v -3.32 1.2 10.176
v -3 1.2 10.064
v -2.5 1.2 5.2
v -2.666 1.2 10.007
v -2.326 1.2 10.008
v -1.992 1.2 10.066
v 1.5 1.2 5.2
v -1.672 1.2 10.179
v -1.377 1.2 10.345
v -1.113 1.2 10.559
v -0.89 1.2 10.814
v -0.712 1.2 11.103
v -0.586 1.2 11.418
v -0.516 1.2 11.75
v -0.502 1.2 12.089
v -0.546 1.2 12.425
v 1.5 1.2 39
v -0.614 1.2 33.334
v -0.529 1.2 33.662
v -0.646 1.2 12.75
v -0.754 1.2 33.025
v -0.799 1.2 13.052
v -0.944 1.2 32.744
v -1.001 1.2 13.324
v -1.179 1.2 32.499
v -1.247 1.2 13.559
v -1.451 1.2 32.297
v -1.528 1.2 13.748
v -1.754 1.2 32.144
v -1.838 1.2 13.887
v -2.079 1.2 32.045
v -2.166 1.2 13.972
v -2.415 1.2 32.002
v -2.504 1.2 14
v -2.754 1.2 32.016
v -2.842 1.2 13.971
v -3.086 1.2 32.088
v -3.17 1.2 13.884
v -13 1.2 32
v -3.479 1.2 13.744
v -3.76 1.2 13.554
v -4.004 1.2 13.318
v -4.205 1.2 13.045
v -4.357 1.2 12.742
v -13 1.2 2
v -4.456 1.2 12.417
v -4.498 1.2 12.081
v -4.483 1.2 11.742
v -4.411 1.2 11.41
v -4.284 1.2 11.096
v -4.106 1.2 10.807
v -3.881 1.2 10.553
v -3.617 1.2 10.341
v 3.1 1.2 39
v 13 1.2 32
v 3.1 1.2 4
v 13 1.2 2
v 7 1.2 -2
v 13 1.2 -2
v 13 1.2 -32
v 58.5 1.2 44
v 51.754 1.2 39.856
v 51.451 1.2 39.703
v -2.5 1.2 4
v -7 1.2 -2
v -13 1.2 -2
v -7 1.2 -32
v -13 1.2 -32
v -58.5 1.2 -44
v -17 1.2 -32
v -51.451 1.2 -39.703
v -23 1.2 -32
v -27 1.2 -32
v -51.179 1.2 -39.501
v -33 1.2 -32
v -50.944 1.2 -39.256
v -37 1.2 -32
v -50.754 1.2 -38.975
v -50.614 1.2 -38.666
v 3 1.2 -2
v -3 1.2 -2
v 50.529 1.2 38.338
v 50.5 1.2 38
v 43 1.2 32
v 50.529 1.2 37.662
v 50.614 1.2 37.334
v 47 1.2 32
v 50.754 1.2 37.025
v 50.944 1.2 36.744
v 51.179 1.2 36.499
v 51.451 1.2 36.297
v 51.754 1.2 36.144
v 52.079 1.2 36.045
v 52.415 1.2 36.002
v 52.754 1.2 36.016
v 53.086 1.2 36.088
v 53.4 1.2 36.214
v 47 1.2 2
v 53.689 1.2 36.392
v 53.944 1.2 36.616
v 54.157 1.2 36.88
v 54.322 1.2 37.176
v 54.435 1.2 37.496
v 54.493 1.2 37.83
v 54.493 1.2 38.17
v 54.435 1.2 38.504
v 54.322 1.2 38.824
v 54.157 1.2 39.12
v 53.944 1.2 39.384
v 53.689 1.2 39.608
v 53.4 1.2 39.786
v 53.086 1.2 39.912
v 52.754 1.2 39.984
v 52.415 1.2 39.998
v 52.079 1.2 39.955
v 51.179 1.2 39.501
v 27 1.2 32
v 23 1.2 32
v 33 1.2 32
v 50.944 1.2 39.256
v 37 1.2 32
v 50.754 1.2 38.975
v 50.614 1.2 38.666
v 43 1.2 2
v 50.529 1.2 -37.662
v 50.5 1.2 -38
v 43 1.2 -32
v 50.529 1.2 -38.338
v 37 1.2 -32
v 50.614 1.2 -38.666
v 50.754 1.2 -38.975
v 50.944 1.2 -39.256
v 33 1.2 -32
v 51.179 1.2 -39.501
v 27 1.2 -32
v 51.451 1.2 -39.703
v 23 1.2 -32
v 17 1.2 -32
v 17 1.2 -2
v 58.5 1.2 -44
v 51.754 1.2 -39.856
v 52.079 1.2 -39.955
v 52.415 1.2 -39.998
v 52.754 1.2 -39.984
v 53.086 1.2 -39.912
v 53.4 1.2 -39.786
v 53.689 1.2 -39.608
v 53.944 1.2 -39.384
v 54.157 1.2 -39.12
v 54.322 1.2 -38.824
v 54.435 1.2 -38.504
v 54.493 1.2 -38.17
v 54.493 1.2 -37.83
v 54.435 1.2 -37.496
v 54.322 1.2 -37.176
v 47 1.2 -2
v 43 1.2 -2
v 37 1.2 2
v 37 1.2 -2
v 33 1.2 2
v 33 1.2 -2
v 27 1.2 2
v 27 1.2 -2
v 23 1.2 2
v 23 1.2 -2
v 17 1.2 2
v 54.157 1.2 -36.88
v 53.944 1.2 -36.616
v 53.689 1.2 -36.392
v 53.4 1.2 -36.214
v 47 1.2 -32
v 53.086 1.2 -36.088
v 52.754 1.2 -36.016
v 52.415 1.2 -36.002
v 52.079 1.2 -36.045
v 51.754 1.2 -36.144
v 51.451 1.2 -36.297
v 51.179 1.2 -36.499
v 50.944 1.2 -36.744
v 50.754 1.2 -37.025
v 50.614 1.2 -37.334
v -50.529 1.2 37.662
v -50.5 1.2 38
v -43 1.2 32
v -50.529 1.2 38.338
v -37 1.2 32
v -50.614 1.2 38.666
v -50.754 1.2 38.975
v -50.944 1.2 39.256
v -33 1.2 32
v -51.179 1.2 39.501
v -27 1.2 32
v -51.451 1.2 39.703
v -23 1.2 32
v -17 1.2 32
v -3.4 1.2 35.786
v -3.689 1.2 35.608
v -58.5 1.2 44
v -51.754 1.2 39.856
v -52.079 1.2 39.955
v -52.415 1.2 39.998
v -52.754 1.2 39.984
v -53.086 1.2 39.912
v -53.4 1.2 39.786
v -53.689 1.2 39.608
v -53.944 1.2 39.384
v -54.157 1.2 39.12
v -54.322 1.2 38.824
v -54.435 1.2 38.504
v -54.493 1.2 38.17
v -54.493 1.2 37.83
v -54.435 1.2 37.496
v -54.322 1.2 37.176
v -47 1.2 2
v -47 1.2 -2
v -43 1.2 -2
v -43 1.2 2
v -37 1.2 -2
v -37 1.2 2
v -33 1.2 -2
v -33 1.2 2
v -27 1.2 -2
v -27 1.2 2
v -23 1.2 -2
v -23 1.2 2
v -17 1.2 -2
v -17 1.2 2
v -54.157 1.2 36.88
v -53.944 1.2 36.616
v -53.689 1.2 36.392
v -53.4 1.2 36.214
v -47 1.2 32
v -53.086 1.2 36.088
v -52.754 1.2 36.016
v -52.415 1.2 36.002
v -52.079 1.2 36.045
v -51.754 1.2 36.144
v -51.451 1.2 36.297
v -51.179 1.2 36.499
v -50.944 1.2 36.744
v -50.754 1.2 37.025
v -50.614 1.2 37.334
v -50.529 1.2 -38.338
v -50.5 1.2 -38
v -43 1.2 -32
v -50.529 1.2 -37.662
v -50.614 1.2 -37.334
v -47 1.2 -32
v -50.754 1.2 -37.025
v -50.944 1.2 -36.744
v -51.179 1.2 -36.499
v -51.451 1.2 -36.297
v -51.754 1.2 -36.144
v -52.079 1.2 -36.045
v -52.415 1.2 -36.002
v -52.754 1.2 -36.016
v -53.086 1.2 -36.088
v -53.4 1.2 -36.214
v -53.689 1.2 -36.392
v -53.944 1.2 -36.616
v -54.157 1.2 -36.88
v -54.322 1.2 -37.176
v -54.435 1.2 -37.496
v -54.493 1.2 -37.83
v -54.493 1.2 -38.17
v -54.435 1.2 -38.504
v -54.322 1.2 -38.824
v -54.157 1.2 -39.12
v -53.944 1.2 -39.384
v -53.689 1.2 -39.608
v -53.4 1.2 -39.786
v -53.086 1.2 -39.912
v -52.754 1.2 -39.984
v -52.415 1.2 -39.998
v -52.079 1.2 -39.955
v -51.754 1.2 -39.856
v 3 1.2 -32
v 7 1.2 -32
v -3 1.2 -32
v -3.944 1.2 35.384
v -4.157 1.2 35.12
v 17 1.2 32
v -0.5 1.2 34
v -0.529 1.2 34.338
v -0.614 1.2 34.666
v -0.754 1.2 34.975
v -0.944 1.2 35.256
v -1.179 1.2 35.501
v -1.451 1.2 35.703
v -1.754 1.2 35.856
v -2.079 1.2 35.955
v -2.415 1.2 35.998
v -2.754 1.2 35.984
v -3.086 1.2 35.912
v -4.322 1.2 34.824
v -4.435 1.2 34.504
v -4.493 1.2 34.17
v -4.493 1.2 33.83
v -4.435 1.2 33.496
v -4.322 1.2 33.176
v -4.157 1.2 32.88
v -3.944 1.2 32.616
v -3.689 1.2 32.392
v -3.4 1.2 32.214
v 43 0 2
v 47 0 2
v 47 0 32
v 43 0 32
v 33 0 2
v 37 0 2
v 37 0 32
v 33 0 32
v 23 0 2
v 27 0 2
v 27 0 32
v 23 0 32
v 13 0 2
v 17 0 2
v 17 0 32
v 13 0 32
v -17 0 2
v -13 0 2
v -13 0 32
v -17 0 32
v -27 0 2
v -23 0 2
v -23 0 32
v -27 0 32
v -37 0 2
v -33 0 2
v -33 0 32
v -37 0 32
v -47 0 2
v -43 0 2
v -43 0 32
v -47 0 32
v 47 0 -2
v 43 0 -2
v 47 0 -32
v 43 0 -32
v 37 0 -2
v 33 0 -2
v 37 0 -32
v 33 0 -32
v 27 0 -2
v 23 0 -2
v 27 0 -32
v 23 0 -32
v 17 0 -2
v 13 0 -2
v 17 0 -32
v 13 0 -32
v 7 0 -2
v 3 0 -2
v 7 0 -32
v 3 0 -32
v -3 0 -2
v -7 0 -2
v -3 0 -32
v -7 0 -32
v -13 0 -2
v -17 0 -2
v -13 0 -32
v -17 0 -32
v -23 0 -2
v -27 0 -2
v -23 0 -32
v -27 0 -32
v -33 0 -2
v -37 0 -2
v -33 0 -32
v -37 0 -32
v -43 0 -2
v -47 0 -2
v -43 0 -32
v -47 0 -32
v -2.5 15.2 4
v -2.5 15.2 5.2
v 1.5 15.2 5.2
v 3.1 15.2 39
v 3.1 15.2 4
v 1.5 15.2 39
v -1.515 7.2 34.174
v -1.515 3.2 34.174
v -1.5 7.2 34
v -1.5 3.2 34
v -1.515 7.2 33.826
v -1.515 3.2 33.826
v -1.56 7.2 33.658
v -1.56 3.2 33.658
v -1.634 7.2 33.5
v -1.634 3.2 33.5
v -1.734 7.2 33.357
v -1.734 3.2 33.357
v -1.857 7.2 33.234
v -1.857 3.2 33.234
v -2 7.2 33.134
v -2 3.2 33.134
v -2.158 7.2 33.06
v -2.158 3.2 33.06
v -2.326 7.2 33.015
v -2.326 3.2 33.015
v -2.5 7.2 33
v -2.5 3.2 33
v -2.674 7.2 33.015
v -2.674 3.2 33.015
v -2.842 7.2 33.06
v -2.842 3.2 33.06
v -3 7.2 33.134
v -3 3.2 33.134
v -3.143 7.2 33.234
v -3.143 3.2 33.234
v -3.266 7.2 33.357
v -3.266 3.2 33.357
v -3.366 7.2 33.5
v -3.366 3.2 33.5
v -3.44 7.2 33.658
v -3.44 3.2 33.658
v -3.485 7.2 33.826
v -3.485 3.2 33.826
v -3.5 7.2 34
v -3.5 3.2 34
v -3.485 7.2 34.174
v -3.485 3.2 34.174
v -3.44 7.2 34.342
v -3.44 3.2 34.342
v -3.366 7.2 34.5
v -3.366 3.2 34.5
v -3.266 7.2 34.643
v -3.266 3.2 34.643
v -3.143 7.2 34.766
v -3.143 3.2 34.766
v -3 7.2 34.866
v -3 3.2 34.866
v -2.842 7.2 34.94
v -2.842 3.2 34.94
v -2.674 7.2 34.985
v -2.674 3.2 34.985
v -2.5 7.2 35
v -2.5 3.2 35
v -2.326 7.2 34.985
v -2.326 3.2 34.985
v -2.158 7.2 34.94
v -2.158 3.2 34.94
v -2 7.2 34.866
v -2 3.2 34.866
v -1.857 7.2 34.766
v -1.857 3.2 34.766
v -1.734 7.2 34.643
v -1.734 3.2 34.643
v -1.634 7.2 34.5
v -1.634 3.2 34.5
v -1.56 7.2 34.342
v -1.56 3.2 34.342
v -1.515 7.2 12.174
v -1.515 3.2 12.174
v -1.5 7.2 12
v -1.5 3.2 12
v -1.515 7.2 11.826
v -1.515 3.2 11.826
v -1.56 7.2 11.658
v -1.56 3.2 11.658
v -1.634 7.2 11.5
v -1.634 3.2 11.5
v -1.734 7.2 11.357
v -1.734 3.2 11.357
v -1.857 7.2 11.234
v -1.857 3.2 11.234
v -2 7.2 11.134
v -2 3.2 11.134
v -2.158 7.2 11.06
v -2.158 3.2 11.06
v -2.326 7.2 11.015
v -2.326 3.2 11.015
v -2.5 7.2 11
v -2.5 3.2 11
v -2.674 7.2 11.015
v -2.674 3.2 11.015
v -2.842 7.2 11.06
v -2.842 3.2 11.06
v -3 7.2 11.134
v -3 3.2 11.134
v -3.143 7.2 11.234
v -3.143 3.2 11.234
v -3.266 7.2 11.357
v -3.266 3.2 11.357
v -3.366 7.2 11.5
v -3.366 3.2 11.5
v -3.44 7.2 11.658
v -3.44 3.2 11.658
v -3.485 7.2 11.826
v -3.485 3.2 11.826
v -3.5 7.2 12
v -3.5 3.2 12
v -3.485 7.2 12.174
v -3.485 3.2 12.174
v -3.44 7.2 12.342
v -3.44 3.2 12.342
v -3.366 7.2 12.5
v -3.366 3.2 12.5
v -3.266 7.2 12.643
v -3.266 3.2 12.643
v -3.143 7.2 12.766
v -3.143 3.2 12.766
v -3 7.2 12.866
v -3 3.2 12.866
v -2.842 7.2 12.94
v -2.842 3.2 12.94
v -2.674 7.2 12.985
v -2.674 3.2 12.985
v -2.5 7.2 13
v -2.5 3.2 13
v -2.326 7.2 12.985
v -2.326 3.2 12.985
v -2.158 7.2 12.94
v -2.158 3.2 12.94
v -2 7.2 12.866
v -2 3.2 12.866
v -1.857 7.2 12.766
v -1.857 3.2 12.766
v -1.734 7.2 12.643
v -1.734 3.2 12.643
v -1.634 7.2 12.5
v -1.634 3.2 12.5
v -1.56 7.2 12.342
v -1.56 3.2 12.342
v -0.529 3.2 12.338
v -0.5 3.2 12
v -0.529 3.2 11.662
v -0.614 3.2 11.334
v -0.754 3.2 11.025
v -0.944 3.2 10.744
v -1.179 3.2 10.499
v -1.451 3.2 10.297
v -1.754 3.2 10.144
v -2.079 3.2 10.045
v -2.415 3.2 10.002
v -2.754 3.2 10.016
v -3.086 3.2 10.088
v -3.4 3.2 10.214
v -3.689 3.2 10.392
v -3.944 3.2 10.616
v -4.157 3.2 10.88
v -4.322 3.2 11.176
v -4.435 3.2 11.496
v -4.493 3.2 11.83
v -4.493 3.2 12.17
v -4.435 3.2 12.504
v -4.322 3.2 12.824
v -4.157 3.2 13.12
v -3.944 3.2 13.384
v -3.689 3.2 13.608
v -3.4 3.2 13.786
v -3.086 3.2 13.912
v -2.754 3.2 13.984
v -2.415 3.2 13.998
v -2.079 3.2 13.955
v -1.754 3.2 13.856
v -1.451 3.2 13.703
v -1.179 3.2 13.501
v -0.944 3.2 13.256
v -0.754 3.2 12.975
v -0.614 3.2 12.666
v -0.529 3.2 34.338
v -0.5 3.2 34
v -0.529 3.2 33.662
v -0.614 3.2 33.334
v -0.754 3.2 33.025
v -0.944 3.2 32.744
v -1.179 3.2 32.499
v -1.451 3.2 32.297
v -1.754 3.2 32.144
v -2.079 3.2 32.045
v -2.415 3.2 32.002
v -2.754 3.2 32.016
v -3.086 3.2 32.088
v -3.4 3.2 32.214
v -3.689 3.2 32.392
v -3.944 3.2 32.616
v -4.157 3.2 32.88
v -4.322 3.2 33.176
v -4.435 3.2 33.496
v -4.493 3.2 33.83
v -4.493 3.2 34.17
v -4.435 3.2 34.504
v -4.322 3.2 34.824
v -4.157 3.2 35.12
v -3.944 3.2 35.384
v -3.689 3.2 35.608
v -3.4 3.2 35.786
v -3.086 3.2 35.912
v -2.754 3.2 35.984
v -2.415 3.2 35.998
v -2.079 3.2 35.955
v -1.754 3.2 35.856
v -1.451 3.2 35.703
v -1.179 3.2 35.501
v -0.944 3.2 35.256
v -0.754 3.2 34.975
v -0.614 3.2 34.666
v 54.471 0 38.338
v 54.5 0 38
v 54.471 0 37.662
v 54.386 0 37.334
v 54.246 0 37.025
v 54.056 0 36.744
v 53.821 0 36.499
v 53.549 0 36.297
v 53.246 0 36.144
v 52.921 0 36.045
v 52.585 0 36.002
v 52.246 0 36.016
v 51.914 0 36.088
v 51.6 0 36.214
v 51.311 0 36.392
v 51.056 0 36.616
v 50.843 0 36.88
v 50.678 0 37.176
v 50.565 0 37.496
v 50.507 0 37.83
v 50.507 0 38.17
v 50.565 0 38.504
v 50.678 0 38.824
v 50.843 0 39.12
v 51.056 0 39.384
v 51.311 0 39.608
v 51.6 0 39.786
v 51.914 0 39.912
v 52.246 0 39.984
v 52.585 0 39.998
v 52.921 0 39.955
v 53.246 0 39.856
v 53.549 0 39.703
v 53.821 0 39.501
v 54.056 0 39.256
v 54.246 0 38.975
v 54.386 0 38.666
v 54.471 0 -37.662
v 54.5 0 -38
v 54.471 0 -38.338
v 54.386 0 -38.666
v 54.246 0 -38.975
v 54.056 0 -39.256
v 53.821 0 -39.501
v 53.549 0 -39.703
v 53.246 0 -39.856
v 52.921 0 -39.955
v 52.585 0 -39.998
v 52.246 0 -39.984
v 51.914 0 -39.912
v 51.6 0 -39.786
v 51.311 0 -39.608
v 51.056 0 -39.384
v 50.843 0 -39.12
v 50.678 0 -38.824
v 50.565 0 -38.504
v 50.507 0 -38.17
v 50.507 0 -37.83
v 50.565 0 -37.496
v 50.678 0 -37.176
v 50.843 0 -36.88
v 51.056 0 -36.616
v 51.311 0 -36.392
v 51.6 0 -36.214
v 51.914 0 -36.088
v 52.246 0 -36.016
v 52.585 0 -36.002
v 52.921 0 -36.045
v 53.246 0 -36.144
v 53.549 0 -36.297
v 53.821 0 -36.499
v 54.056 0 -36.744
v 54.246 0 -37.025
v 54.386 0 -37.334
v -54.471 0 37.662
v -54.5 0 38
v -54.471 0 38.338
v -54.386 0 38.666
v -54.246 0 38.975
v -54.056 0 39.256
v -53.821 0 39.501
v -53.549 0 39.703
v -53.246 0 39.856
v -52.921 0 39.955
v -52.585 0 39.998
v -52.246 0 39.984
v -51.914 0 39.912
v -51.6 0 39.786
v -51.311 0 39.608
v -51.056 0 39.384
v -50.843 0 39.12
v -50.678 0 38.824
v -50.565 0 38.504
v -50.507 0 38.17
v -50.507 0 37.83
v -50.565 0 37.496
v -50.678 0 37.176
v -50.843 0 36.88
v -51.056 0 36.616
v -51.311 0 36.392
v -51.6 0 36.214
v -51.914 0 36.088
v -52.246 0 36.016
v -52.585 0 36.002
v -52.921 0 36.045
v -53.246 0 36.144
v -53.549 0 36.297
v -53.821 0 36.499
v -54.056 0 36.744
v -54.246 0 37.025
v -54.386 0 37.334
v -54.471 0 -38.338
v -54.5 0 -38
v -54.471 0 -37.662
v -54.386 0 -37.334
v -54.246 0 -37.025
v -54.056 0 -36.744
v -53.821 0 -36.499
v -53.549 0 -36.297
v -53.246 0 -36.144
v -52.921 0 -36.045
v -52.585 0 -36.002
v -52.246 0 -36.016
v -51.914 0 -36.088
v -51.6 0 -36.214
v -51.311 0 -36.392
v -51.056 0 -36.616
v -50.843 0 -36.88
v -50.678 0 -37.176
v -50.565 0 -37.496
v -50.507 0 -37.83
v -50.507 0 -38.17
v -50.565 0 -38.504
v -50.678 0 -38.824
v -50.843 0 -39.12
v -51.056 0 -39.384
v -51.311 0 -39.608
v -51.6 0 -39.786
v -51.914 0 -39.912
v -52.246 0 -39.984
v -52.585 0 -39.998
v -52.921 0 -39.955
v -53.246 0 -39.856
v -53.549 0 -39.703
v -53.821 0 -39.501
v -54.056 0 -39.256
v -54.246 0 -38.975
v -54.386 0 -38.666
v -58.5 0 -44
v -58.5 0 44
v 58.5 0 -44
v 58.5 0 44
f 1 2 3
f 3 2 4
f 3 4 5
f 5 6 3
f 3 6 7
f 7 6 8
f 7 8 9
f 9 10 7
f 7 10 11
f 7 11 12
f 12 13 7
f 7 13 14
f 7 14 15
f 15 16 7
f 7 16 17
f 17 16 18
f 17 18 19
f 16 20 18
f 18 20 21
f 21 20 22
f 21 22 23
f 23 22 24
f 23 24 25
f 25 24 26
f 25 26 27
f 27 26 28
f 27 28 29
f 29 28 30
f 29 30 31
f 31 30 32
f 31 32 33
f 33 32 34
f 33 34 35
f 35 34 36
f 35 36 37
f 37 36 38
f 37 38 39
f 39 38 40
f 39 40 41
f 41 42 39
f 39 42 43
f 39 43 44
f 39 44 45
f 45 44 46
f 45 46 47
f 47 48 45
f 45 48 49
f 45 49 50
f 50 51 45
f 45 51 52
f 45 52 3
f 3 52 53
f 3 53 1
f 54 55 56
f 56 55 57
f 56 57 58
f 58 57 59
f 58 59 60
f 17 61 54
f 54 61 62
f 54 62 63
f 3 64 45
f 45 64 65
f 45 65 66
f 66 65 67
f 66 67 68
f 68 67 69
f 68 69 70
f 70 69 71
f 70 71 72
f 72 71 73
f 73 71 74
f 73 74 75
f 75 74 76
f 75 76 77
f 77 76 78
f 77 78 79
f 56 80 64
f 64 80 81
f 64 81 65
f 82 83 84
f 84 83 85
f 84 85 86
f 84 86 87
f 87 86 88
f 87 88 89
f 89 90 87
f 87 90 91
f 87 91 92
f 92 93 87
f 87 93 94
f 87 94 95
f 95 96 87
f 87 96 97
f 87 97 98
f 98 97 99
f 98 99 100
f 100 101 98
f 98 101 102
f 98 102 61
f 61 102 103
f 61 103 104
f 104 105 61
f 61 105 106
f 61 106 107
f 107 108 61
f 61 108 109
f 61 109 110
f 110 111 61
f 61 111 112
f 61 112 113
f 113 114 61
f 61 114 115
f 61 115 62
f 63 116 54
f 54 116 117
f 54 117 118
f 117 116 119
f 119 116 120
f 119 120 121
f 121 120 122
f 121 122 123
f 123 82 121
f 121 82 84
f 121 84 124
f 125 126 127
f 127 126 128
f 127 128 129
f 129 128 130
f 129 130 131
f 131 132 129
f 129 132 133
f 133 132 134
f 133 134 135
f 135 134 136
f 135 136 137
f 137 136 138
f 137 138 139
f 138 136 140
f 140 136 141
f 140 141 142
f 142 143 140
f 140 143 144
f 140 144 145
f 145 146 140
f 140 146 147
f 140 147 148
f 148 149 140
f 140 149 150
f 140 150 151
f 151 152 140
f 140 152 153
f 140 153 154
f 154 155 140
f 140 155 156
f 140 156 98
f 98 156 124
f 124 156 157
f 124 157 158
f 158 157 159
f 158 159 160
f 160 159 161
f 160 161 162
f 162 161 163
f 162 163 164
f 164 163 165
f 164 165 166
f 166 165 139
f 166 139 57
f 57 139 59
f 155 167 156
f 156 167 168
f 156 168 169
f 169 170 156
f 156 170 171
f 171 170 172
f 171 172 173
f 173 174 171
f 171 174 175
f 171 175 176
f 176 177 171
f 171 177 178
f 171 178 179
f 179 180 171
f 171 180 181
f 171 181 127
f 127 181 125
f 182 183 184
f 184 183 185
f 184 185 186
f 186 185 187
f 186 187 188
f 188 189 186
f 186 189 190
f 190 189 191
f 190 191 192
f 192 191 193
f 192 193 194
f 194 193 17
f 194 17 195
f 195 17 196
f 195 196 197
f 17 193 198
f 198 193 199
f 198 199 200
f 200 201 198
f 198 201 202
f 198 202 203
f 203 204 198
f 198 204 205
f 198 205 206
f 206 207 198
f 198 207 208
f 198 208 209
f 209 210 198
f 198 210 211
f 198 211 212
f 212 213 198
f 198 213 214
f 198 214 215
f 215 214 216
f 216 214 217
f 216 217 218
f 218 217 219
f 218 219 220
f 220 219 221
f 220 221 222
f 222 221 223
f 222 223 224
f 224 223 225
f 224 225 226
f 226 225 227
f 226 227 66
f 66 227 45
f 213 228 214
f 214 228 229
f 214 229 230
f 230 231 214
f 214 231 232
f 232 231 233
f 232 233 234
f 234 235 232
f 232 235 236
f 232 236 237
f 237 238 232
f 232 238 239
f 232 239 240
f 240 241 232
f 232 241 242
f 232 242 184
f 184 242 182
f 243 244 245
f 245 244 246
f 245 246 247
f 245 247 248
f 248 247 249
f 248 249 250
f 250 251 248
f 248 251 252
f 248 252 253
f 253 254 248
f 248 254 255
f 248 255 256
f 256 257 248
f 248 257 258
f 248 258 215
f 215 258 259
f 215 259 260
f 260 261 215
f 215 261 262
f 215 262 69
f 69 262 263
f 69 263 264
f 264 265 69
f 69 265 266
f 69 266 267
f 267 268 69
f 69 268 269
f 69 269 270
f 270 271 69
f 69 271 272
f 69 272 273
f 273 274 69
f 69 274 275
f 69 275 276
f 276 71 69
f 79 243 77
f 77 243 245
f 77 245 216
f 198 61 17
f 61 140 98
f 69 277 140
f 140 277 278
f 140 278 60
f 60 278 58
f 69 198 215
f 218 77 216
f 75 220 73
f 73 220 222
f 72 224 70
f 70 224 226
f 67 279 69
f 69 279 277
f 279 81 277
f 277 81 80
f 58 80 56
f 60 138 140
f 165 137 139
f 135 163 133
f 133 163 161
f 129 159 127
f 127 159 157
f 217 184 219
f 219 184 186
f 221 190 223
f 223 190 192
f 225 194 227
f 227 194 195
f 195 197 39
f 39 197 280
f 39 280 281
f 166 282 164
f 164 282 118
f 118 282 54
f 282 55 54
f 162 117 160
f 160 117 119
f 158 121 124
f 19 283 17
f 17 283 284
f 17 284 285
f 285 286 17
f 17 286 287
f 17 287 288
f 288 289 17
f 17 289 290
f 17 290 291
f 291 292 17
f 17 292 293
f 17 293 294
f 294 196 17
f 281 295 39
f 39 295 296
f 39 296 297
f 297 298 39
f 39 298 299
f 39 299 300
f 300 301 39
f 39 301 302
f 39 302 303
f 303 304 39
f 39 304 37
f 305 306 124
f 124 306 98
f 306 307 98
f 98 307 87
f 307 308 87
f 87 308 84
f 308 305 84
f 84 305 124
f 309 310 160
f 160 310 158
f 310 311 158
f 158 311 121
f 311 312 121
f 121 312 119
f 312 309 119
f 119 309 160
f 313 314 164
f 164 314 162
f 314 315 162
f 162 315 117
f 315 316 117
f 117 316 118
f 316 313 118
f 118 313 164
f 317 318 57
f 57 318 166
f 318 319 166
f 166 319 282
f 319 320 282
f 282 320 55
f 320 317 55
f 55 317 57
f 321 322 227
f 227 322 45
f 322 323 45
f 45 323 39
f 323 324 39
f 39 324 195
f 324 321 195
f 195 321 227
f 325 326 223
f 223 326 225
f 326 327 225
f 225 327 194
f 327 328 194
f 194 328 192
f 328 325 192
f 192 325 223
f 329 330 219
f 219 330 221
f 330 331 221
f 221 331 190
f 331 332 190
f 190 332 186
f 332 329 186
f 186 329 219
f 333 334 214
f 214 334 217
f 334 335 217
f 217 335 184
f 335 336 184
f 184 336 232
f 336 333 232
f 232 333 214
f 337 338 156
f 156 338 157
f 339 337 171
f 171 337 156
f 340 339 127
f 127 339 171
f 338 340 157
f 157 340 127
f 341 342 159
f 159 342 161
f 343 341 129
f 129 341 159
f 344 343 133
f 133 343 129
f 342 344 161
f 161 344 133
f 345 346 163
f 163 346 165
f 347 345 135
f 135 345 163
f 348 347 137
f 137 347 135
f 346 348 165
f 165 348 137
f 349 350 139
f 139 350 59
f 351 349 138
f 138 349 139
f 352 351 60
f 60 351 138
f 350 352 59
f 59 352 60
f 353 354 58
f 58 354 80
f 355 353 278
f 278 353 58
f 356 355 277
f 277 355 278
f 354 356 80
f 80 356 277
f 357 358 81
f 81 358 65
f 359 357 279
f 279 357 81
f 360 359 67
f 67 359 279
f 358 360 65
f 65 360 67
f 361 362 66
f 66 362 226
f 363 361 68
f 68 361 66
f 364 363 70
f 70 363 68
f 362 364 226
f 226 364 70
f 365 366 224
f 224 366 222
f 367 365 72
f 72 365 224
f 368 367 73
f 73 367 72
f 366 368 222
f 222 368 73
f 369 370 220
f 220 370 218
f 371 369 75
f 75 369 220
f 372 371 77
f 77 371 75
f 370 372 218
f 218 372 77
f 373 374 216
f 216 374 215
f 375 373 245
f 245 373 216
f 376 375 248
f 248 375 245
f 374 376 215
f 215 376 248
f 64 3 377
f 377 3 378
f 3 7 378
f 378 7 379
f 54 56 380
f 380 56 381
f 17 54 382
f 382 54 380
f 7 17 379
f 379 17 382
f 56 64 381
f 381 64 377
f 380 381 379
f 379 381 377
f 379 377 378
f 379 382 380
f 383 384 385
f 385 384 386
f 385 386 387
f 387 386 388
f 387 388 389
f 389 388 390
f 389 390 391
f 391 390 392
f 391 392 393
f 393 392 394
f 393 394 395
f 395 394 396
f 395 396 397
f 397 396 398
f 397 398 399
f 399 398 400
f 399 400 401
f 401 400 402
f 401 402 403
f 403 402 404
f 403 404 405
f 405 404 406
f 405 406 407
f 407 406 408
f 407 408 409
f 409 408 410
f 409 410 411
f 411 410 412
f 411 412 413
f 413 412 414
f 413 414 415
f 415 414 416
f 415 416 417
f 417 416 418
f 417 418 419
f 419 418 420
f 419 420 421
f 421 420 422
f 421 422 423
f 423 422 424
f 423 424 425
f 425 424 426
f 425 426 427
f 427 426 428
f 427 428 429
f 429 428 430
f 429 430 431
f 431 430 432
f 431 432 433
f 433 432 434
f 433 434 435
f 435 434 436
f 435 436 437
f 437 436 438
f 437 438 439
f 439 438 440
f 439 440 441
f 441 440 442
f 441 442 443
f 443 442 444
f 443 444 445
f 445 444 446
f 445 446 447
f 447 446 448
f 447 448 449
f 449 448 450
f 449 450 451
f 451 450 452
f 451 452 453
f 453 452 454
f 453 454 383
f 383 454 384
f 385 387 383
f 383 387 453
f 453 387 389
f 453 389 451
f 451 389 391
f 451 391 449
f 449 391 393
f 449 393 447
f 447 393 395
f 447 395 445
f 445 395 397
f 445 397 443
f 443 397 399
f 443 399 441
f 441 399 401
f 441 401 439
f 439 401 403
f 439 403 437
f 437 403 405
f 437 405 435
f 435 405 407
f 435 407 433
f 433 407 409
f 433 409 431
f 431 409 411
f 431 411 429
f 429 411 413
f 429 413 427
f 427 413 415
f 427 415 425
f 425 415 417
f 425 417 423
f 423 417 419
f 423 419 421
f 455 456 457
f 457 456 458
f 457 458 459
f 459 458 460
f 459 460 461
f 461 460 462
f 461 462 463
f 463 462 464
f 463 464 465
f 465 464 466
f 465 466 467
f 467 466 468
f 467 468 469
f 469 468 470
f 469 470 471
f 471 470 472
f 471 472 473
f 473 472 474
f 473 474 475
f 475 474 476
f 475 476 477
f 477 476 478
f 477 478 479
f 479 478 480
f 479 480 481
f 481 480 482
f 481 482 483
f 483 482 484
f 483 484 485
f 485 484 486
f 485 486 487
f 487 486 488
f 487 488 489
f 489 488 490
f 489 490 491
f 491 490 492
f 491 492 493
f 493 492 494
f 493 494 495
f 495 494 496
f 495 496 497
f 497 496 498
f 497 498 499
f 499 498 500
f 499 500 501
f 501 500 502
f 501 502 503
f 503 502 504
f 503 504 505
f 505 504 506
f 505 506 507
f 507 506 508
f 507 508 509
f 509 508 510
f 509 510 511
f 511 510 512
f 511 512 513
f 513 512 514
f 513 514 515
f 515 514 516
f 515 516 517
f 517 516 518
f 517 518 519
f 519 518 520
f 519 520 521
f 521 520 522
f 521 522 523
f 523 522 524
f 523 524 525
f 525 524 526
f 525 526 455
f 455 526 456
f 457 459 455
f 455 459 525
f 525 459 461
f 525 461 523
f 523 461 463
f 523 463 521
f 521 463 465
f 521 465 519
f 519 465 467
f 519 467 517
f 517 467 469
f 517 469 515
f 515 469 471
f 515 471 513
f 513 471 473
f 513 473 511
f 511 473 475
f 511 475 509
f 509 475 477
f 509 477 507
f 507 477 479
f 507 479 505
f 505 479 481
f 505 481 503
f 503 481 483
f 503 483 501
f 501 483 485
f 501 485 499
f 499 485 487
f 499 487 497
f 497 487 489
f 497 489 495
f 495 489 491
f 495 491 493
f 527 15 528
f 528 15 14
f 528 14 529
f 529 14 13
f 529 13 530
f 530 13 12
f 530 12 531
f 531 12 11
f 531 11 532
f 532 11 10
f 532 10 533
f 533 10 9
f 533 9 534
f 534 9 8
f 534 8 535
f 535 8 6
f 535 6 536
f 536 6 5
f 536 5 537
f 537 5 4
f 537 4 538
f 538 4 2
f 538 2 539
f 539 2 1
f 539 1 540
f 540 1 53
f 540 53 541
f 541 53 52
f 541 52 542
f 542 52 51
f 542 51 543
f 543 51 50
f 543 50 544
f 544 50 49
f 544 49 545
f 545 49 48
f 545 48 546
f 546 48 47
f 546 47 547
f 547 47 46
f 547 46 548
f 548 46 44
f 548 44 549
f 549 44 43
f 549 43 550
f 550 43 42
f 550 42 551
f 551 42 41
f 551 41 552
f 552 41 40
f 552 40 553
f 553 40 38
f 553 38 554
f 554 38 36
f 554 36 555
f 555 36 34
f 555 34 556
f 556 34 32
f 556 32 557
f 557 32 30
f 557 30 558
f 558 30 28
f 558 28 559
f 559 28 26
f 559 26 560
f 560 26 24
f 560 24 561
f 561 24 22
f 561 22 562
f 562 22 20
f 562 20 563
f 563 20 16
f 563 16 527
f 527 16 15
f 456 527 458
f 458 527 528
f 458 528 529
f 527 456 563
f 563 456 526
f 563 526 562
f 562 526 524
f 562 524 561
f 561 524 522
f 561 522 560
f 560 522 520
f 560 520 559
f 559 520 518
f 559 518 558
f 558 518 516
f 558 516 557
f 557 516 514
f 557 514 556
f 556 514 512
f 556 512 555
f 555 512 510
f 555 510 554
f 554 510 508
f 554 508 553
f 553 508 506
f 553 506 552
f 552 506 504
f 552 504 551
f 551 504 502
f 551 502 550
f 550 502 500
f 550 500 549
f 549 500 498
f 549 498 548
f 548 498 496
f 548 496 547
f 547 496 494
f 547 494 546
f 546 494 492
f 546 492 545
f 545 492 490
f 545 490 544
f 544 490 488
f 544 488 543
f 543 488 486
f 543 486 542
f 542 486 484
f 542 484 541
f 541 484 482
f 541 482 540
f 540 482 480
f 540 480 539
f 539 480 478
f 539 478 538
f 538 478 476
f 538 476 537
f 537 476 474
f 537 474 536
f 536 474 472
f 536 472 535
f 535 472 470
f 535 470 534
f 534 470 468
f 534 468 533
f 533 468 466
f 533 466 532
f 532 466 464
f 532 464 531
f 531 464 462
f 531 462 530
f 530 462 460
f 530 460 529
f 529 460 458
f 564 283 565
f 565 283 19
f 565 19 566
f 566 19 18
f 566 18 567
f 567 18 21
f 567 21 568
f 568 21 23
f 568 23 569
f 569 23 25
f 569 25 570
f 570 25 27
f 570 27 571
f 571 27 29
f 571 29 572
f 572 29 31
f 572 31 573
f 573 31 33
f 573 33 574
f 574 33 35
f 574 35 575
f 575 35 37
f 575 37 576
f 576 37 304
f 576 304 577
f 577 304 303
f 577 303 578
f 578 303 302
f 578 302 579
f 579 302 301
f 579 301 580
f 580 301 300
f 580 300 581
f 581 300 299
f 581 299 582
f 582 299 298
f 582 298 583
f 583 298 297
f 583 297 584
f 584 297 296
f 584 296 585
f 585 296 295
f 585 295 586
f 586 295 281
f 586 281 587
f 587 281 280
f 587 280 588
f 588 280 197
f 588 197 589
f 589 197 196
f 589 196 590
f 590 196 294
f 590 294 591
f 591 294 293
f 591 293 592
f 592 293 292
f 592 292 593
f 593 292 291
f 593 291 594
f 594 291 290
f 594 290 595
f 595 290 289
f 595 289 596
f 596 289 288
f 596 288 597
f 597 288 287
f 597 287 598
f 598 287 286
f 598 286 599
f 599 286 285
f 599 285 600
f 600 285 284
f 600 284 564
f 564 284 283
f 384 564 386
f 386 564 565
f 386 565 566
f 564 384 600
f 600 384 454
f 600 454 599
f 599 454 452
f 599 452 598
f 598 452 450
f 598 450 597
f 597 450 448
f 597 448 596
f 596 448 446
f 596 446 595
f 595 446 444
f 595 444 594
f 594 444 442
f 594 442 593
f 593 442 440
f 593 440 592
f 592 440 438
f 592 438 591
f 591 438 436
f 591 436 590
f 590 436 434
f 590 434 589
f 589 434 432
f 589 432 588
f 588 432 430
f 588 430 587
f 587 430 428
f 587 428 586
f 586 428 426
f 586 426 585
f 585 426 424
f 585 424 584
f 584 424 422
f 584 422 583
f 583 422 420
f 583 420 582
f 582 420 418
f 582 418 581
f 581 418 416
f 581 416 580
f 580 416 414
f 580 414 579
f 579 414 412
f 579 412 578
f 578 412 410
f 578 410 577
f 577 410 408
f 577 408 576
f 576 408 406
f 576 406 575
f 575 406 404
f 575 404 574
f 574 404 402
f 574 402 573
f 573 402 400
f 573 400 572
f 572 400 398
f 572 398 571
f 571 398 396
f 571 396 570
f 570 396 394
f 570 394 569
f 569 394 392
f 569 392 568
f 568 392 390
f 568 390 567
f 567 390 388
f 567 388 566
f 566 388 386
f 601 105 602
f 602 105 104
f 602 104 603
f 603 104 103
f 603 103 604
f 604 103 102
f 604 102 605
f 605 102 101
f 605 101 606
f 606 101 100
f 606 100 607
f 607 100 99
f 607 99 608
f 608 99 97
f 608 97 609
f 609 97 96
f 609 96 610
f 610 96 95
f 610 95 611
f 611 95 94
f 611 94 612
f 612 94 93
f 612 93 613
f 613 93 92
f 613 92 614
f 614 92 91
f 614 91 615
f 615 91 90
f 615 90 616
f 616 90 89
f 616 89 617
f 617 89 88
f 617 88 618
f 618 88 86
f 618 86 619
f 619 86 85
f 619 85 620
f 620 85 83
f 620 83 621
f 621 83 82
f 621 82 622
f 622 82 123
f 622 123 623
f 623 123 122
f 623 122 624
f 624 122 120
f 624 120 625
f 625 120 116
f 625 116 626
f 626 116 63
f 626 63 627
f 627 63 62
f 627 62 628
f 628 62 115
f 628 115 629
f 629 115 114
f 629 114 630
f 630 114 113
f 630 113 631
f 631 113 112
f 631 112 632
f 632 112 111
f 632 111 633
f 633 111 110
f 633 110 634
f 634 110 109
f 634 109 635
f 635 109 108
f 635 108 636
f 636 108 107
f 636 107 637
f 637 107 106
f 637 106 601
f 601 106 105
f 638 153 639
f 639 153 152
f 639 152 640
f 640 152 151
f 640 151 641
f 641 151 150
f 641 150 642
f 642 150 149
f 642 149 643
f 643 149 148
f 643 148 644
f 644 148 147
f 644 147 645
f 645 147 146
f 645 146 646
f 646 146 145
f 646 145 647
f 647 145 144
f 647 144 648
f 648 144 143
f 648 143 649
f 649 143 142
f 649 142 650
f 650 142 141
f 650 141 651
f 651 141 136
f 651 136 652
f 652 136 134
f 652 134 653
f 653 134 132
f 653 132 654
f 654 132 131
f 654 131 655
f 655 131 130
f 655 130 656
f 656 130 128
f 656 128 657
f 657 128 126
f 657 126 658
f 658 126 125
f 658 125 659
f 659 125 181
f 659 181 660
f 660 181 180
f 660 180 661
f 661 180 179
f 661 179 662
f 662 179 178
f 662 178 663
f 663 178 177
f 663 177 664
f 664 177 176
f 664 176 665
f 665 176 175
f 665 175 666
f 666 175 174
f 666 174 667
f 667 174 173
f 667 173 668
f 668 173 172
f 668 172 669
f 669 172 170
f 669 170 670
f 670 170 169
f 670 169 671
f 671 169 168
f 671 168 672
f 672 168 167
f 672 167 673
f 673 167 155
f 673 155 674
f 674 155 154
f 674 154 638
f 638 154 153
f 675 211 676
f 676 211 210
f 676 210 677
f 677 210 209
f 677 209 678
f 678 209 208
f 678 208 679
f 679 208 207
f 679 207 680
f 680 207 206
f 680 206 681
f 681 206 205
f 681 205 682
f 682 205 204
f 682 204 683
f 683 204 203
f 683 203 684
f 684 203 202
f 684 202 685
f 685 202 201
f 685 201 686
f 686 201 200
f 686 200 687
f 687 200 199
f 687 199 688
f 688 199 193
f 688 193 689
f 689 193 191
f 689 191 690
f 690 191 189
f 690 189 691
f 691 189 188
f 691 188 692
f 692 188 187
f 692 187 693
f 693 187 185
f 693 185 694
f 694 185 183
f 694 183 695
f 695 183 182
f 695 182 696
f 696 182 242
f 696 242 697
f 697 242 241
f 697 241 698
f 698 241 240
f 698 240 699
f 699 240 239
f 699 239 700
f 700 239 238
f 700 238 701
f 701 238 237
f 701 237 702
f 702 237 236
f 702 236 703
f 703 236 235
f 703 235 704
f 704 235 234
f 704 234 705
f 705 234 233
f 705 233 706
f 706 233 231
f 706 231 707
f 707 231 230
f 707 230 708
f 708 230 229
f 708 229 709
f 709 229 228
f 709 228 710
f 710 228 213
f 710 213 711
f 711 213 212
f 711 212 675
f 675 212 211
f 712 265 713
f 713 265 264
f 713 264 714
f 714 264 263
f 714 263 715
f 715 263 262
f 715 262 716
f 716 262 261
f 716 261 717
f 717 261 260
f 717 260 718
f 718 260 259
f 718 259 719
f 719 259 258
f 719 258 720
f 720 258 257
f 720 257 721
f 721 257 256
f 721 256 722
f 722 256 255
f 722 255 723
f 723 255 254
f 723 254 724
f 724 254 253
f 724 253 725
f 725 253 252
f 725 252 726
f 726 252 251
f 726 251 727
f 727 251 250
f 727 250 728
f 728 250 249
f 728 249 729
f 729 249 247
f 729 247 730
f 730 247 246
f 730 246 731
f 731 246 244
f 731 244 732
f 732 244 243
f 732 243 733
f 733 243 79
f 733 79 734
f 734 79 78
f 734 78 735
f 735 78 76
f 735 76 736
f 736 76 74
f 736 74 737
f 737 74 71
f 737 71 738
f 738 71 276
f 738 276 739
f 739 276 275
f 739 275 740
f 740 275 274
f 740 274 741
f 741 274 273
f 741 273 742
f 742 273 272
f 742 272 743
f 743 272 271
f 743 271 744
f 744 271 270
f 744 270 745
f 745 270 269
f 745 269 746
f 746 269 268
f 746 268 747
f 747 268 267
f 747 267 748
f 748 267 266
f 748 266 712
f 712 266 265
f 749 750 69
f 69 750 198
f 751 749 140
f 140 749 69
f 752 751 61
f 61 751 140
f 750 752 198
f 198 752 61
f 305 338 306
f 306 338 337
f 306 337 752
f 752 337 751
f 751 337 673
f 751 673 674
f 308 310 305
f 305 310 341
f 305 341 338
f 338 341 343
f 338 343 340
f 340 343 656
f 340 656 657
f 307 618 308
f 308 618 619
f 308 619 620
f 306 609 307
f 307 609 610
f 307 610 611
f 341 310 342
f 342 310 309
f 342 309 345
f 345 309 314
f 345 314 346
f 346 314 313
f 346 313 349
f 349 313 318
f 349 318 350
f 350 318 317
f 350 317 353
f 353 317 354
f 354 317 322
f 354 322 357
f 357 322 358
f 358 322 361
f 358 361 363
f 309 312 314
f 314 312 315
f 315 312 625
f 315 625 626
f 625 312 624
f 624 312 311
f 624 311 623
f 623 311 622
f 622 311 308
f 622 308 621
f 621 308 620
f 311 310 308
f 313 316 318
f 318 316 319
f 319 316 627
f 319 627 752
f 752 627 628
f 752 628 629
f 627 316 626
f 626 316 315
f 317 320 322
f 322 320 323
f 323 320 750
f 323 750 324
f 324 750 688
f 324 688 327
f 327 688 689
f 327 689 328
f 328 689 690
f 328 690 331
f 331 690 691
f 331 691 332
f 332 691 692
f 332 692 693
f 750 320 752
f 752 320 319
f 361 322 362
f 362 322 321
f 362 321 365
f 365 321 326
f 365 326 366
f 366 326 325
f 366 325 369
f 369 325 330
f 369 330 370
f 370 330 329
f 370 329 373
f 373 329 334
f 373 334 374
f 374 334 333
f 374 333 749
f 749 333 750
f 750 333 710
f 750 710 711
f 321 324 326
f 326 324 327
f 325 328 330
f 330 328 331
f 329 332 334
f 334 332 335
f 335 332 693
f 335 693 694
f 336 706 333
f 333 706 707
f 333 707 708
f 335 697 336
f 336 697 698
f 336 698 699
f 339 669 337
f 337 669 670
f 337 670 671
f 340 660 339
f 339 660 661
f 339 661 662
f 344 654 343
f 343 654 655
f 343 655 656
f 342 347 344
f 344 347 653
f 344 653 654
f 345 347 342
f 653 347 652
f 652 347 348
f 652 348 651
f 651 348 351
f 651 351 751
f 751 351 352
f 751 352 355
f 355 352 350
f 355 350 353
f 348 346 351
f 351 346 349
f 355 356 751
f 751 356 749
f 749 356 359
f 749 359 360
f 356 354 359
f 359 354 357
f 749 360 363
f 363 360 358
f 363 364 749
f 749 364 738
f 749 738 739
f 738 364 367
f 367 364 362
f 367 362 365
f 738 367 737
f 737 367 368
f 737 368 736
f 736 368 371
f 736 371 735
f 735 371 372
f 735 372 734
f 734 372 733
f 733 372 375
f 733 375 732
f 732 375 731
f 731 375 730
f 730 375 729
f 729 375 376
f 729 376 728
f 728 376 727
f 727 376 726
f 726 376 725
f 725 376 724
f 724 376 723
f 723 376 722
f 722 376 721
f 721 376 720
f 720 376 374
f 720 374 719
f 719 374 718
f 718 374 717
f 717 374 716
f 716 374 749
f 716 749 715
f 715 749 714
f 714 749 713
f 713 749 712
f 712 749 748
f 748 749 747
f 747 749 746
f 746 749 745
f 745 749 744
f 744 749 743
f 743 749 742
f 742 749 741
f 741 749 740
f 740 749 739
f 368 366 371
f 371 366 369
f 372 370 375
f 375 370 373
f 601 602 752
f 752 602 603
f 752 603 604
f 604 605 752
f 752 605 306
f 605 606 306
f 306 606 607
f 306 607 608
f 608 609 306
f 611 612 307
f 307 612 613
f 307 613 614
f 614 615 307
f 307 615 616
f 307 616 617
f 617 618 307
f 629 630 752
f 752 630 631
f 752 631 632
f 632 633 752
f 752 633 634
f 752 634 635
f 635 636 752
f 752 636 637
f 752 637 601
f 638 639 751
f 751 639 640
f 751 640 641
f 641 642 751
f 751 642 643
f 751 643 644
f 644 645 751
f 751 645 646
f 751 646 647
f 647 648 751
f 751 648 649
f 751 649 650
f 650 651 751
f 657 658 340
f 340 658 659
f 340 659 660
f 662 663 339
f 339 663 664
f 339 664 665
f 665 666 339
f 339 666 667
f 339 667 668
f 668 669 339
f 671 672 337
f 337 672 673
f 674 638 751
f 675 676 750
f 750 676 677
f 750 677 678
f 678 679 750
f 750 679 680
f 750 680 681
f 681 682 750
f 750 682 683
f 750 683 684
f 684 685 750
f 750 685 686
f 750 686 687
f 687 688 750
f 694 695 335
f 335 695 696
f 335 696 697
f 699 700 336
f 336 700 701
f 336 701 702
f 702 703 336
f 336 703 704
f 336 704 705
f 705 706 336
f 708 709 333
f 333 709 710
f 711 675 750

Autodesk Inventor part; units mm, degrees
ref_plane "YZ Plane" through (0, 0, 0) normal (1, 0, 0) x (0, 1, 0)
ref_plane "XZ Plane" through (0, 0, 0) normal (0, 1, 0) x (-1, 0, 0)
ref_plane "XY Plane" through (0, 0, 0) normal (0, 0, 1) x (1, 0, 0)
sketch "Szkic1" plane through (0, 0, 0) normal (0, 1, 0) x (-1, 0, 0)
  line L0 (58.5, -44) -> (-58.5, -44)
  line L1 (-58.5, -44) -> (-58.5, 44)
  line L2 (-58.5, 44) -> (58.5, 44)
  line L3 (58.5, 44) -> (58.5, -44)
  line L4 (58.5, -44) -> (-58.5, 44) construction
  line L5 (-58.5, -44) -> (58.5, 44) construction
  point P0 (0, 0)
  dimension "d0" = 117
  dimension "d1" = 88
extrude "Wyciągnięcie proste1" add sketch "Szkic1" along normal blind 1.2
sketch "Szkic2" plane through (0, 1.2, 0) normal (0, 1, 0) x (1, 0, 0)
  line L0 (-52.5, 38) -> (-52.5, 44)
  line L1 (58.5, 44) -> (-58.5, 44) projected
  line L2 (-52.5, 38) -> (-46.5, 38) construction
  line L3 (-52.5, 38) -> (-58.5, 38)
  line L4 (-58.5, 44) -> (-58.5, -44) projected
  line L5 (-52.5, 38) -> (-46.5, 38) construction
  circle A0 centre (-52.5, 38) radius 2
  point P0 (0, 0)
  dimension "d4" = 6
  dimension "d5" = 90
  dimension "d6" = 6
  dimension "d7" = 180
  dimension "d8" = 4
extrude "Wyciągnięcie proste2" cut sketch "Szkic2" against normal through all contours L3 A0 L0 | L0 A0 L3
mirror "Odbij1" about plane through (0, 0, 0) normal (0, 0, 1) of "Wyciągnięcie proste2"
mirror "Odbij2" about plane through (0, 0, 0) normal (1, 0, 0) of "Wyciągnięcie proste2", "Odbij1"
sketch "Szkic3" plane through (0, 1.2, 0) normal (0, 1, 0) x (1, 0, 0)
  line L0 (-2.5, -34) -> (-58.5, -34)
  line L1 (-2.5, -34) -> (53.5, -34) construction
  line L2 (-2.5, -34) -> (-2.5, -44)
  line L3 (-2.5, -34) -> (7.5, -34) construction
  line L4 (-58.5, 44) -> (-58.5, -44) projected
  line L5 (-58.5, -44) -> (58.5, -44) projected
  circle A0 centre (-2.5, -34) radius 2
  line L6 (-2.5, -34) -> (-2.5, -12)
  line L7 (-2.5, -34) -> (19.5, -34) construction
  circle A1 centre (-2.5, -12) radius 2
  point P0 (0, 0)
  dimension "d11" = 56
  dimension "d12" = 180
  dimension "d13" = 10
  dimension "d14" = 90
  dimension "d15" = 4
  dimension "d16" = 22
  dimension "d17" = 90
  dimension "d18" = 4
extrude "Wyciągnięcie proste3" add sketch "Szkic3" along normal blind 2 contours L2 A0 L0 | L6 A0 L2 | L0 A0 L6 | A1
sketch "Szkic4" plane through (-2.5, 3.2, 34) normal (0, 1, 0) x (1, 0, 0)
  circle A0 centre (0, 0) radius 1
  circle A1 centre (0, 22) radius 2 projected
  circle A2 centre (0, 22) radius 1
  point P0 (2.5, 34)
  dimension "d21" = 2
  dimension "d22" = 2
extrude "Wyciągnięcie proste4" add sketch "Szkic4" along normal blind 4 contours A0 | A2
sketch "Szkic5" plane through (0, 1.2, 0) normal (0, 1, 0) x (1, 0, 0)
  line L0 (1.5, -4) -> (3.1, -4)
  line L1 (3.1, -4) -> (3.1, -39)
  line L2 (3.1, -39) -> (1.5, -39)
  line L3 (1.5, -39) -> (1.5, -4)
  line L4 (2.3, -39) -> (2.3, -44)
  line L5 (-58.5, -44) -> (58.5, -44) projected
  line L6 (1.5, -15.8672) -> (-58.5, -15.8672)
  line L7 (-58.5, 44) -> (-58.5, -44) projected
  point P0 (0, 0)
  dimension "d25" = 1.6
  dimension "d26" = 35
  dimension "d27" = 5
  dimension "d28" = 60
extrude "Wyciągnięcie proste5" add sketch "Szkic5" along normal blind 14 contours L0 L1 L2 L3
sketch "Szkic6" plane through (0, 1.2, 0) normal (0, 1, 0) x (1, 0, 0)
  line L0 (3.1, -4) -> (1.5, -4) projected
  line L1 (1.5, -4) -> (-2.5, -4)
  line L2 (-2.5, -4) -> (-2.5, -5.2)
  line L3 (-2.5, -5.2) -> (1.5, -5.2)
  line L4 (1.5, -5.2) -> (1.5, -4)
  point P0 (0, 0)
  dimension "d31" = 4
  dimension "d32" = 1.2
extrude "Wyciągnięcie proste6" add sketch "Szkic6" along normal blind 14
sketch "Szkic7" plane through (0, 1.2, 0) normal (0, 1, 0) x (1, 0, 0)
  line L0 (-47, 32) -> (-43, 32)
  line L1 (-43, 32) -> (-43, 2)
  line L2 (-43, 2) -> (-47, 2)
  line L3 (-47, 2) -> (-47, 32)
  line L4 (-47, 28.7975) -> (-58.5, 28.7975)
  line L5 (-47, 28.7975) -> (-35.5, 28.7975) construction
  line L6 (-58.5, 44) -> (-58.5, -44) projected
  line L7 (-45, 32) -> (-45, 44)
  line L8 (-45, 32) -> (-33, 32) construction
  line L9 (58.5, 44) -> (-58.5, 44) projected
  point P0 (0, 0)
  dimension "d35" = 4
  dimension "d36" = 30
  dimension "d37" = 11.5
  dimension "d38" = 180
  dimension "d39" = 12
  dimension "d40" = 90
extrude "Wyciągnięcie proste7" cut sketch "Szkic7" against normal through all contours L0 L1 L2 L3
pattern_linear "Szyk prostokątny3" count 10 spacing 10 along (1, 0, 0) of "Wyciągnięcie proste7"
mirror "Odbij5" about plane through (0, 0, 0) normal (0, 0, 1) of "Wyciągnięcie proste7", "Szyk prostokątny3"
sketch "Szkic8" plane through (0, 1.2, 0) normal (0, 1, 0) x (1, 0, 0)
  line L0 (-7, -32) -> (-7, -2) projected
  line L1 (7, -2) -> (-7, -2)
  line L2 (-7, -2) -> (-7, -32)
  line L3 (-7, -32) -> (7, -32)
  line L4 (7, -32) -> (7, -2)
  point P0 (0, 0)
  point P1 (-7, -2)
extrude "Wyciągnięcie proste8" add sketch "Szkic8" against normal up to surface (1.2 mm away)
properties part number "platforma"
